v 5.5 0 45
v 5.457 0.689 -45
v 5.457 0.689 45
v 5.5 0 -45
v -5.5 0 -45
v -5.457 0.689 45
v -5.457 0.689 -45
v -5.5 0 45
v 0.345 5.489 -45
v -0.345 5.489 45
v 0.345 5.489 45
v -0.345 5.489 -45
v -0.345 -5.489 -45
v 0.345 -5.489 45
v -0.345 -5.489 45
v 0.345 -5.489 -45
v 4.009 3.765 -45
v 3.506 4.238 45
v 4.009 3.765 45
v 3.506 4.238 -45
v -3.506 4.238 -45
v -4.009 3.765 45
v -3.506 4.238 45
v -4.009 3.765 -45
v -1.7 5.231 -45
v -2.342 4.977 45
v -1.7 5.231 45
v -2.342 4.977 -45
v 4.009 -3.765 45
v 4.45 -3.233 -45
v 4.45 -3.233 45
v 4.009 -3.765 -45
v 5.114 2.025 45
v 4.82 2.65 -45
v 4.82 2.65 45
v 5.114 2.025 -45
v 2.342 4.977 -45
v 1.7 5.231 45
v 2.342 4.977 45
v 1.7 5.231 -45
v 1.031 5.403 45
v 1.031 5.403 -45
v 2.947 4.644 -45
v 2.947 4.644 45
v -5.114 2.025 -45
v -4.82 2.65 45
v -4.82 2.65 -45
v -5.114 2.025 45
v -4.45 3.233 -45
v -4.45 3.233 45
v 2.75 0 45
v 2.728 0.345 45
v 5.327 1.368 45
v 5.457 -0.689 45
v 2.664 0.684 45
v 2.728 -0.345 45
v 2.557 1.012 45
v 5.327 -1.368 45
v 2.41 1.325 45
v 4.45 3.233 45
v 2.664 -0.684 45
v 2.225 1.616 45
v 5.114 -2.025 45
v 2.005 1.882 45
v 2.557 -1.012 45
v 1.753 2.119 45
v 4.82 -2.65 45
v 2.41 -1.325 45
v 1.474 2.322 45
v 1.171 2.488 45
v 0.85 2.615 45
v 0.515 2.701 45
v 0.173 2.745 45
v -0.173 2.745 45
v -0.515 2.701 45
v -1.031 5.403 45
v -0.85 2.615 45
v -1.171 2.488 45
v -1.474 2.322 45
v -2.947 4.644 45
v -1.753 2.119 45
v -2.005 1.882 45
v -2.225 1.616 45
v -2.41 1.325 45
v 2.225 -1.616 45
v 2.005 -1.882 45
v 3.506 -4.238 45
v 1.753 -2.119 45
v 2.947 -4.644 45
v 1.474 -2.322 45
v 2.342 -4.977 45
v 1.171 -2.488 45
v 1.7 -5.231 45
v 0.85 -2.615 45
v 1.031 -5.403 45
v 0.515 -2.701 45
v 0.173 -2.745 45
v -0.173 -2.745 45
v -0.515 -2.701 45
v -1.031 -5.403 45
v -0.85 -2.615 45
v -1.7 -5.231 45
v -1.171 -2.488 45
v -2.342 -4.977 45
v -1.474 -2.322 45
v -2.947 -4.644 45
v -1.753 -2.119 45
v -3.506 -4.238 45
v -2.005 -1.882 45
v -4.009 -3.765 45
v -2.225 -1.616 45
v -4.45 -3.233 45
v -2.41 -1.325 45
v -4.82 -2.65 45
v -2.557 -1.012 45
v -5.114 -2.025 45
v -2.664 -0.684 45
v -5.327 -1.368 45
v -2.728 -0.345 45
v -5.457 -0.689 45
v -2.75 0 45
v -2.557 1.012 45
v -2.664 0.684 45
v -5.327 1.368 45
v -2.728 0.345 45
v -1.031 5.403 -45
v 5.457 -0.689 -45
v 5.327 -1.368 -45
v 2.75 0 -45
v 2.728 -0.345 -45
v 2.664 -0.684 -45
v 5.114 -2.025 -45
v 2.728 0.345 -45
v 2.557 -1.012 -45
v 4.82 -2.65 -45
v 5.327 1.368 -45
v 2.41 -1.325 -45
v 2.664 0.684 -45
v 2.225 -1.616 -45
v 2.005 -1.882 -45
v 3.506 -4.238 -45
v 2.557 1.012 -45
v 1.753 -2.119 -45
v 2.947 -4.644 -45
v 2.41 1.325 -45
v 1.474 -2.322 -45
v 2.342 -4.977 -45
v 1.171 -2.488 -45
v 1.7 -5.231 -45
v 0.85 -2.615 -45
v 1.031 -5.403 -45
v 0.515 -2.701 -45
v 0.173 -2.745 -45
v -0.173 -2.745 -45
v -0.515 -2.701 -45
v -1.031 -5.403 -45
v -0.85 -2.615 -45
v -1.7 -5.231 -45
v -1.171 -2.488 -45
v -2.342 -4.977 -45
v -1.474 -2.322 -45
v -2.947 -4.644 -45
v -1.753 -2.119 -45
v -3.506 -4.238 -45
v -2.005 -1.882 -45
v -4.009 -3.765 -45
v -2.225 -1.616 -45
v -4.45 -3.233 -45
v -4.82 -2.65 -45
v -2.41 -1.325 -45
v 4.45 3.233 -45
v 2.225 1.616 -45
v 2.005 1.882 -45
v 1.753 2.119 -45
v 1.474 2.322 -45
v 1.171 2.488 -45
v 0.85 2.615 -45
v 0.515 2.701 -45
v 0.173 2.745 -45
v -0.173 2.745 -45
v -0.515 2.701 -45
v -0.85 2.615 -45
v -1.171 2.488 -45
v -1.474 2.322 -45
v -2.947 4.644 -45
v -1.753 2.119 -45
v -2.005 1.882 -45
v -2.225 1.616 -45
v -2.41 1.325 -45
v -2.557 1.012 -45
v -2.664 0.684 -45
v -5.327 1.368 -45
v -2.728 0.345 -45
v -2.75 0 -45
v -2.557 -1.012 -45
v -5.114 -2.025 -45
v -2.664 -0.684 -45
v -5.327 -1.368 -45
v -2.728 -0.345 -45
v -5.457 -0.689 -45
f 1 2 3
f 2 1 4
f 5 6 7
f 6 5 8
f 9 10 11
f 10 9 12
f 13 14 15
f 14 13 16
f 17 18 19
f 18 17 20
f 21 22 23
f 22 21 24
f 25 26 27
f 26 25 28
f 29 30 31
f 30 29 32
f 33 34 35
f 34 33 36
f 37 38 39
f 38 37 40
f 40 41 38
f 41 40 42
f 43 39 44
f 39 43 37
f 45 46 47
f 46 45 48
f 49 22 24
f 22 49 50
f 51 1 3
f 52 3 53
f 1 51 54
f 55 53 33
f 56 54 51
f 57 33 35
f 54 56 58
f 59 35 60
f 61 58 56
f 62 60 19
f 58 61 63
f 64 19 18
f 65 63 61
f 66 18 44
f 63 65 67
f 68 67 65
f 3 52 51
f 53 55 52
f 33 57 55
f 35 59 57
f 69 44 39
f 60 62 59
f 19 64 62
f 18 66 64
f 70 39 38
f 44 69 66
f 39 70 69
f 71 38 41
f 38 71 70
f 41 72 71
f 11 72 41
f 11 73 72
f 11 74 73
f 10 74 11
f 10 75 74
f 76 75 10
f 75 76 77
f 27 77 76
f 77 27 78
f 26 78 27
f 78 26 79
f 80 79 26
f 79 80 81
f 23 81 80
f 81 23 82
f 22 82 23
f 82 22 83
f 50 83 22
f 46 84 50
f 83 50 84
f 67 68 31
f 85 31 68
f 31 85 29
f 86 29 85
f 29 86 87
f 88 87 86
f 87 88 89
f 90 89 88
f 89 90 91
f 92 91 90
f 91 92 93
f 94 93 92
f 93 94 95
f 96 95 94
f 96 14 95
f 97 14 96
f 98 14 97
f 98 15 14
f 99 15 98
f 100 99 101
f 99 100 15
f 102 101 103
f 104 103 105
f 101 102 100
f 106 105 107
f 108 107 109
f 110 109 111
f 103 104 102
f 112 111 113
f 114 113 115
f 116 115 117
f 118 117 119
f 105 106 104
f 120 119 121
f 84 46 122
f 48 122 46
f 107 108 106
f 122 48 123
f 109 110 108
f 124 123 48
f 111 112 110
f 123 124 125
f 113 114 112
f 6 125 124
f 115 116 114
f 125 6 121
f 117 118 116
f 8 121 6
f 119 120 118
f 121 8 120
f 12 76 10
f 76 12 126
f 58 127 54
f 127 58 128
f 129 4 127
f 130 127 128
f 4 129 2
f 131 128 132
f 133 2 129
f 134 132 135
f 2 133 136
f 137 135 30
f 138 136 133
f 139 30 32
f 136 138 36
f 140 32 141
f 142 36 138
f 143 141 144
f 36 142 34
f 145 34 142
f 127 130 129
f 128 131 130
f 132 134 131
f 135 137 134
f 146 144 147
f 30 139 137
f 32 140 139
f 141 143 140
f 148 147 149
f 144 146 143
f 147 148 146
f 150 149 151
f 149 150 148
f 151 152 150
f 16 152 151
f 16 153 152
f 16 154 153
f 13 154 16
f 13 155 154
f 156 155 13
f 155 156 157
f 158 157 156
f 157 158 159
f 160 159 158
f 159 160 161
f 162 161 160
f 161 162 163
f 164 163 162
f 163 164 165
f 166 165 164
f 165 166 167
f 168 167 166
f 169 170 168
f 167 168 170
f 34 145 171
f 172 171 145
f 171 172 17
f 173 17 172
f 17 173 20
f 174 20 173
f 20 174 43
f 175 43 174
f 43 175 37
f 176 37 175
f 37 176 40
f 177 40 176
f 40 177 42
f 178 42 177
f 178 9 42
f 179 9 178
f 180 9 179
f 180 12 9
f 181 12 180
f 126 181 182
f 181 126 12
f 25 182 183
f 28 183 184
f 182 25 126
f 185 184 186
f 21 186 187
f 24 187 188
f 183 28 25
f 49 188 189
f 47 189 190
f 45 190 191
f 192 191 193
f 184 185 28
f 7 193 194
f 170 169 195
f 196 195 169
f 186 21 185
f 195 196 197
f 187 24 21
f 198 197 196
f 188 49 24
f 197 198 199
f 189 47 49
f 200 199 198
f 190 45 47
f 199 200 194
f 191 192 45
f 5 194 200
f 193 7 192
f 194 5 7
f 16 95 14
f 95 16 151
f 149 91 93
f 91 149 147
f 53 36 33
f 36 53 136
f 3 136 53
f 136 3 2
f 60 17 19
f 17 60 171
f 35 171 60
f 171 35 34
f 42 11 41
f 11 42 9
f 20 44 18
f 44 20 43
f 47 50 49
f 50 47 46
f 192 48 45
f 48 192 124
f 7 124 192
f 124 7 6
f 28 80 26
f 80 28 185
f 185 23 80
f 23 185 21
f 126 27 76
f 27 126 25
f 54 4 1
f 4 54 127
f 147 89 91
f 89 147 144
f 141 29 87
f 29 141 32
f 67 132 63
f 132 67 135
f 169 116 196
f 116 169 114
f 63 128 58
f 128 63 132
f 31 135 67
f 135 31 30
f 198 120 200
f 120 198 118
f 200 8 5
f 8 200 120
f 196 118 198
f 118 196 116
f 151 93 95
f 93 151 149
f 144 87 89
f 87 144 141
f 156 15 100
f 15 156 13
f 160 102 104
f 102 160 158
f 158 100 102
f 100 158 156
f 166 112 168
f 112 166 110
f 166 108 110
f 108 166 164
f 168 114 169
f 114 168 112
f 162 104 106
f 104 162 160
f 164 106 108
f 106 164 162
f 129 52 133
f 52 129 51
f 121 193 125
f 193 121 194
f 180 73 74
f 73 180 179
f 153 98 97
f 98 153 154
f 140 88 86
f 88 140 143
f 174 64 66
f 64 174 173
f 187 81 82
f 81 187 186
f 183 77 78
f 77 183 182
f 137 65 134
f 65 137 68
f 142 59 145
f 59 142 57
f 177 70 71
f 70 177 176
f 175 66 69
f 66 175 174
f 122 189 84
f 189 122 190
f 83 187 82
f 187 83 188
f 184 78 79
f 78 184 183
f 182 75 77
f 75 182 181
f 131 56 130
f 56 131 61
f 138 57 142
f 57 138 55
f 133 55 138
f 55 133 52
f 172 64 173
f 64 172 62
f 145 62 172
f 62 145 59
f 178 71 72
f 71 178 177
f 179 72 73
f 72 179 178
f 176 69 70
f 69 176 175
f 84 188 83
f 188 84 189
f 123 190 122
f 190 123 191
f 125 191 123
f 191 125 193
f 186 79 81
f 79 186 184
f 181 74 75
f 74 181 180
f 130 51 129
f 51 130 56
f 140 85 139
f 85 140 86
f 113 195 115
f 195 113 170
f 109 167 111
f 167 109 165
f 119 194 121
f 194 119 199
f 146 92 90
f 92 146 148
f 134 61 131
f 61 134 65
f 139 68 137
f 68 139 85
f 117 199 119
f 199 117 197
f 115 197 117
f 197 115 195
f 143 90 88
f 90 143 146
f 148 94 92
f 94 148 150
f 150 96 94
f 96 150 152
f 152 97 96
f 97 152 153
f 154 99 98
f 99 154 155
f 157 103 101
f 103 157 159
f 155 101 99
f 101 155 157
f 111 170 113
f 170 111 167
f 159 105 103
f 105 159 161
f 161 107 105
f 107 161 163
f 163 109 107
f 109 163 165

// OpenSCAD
$fn = 50;


difference() {
	union() {
		translate(v = [0, 0, -45.0000000000]) {
			cylinder(h = 90, r = 5.5000000000);
		}
	}
	union() {
		translate(v = [0, 0, -100.0000000000]) {
			cylinder(h = 200, r = 2.7500000000);
		}
	}
}
